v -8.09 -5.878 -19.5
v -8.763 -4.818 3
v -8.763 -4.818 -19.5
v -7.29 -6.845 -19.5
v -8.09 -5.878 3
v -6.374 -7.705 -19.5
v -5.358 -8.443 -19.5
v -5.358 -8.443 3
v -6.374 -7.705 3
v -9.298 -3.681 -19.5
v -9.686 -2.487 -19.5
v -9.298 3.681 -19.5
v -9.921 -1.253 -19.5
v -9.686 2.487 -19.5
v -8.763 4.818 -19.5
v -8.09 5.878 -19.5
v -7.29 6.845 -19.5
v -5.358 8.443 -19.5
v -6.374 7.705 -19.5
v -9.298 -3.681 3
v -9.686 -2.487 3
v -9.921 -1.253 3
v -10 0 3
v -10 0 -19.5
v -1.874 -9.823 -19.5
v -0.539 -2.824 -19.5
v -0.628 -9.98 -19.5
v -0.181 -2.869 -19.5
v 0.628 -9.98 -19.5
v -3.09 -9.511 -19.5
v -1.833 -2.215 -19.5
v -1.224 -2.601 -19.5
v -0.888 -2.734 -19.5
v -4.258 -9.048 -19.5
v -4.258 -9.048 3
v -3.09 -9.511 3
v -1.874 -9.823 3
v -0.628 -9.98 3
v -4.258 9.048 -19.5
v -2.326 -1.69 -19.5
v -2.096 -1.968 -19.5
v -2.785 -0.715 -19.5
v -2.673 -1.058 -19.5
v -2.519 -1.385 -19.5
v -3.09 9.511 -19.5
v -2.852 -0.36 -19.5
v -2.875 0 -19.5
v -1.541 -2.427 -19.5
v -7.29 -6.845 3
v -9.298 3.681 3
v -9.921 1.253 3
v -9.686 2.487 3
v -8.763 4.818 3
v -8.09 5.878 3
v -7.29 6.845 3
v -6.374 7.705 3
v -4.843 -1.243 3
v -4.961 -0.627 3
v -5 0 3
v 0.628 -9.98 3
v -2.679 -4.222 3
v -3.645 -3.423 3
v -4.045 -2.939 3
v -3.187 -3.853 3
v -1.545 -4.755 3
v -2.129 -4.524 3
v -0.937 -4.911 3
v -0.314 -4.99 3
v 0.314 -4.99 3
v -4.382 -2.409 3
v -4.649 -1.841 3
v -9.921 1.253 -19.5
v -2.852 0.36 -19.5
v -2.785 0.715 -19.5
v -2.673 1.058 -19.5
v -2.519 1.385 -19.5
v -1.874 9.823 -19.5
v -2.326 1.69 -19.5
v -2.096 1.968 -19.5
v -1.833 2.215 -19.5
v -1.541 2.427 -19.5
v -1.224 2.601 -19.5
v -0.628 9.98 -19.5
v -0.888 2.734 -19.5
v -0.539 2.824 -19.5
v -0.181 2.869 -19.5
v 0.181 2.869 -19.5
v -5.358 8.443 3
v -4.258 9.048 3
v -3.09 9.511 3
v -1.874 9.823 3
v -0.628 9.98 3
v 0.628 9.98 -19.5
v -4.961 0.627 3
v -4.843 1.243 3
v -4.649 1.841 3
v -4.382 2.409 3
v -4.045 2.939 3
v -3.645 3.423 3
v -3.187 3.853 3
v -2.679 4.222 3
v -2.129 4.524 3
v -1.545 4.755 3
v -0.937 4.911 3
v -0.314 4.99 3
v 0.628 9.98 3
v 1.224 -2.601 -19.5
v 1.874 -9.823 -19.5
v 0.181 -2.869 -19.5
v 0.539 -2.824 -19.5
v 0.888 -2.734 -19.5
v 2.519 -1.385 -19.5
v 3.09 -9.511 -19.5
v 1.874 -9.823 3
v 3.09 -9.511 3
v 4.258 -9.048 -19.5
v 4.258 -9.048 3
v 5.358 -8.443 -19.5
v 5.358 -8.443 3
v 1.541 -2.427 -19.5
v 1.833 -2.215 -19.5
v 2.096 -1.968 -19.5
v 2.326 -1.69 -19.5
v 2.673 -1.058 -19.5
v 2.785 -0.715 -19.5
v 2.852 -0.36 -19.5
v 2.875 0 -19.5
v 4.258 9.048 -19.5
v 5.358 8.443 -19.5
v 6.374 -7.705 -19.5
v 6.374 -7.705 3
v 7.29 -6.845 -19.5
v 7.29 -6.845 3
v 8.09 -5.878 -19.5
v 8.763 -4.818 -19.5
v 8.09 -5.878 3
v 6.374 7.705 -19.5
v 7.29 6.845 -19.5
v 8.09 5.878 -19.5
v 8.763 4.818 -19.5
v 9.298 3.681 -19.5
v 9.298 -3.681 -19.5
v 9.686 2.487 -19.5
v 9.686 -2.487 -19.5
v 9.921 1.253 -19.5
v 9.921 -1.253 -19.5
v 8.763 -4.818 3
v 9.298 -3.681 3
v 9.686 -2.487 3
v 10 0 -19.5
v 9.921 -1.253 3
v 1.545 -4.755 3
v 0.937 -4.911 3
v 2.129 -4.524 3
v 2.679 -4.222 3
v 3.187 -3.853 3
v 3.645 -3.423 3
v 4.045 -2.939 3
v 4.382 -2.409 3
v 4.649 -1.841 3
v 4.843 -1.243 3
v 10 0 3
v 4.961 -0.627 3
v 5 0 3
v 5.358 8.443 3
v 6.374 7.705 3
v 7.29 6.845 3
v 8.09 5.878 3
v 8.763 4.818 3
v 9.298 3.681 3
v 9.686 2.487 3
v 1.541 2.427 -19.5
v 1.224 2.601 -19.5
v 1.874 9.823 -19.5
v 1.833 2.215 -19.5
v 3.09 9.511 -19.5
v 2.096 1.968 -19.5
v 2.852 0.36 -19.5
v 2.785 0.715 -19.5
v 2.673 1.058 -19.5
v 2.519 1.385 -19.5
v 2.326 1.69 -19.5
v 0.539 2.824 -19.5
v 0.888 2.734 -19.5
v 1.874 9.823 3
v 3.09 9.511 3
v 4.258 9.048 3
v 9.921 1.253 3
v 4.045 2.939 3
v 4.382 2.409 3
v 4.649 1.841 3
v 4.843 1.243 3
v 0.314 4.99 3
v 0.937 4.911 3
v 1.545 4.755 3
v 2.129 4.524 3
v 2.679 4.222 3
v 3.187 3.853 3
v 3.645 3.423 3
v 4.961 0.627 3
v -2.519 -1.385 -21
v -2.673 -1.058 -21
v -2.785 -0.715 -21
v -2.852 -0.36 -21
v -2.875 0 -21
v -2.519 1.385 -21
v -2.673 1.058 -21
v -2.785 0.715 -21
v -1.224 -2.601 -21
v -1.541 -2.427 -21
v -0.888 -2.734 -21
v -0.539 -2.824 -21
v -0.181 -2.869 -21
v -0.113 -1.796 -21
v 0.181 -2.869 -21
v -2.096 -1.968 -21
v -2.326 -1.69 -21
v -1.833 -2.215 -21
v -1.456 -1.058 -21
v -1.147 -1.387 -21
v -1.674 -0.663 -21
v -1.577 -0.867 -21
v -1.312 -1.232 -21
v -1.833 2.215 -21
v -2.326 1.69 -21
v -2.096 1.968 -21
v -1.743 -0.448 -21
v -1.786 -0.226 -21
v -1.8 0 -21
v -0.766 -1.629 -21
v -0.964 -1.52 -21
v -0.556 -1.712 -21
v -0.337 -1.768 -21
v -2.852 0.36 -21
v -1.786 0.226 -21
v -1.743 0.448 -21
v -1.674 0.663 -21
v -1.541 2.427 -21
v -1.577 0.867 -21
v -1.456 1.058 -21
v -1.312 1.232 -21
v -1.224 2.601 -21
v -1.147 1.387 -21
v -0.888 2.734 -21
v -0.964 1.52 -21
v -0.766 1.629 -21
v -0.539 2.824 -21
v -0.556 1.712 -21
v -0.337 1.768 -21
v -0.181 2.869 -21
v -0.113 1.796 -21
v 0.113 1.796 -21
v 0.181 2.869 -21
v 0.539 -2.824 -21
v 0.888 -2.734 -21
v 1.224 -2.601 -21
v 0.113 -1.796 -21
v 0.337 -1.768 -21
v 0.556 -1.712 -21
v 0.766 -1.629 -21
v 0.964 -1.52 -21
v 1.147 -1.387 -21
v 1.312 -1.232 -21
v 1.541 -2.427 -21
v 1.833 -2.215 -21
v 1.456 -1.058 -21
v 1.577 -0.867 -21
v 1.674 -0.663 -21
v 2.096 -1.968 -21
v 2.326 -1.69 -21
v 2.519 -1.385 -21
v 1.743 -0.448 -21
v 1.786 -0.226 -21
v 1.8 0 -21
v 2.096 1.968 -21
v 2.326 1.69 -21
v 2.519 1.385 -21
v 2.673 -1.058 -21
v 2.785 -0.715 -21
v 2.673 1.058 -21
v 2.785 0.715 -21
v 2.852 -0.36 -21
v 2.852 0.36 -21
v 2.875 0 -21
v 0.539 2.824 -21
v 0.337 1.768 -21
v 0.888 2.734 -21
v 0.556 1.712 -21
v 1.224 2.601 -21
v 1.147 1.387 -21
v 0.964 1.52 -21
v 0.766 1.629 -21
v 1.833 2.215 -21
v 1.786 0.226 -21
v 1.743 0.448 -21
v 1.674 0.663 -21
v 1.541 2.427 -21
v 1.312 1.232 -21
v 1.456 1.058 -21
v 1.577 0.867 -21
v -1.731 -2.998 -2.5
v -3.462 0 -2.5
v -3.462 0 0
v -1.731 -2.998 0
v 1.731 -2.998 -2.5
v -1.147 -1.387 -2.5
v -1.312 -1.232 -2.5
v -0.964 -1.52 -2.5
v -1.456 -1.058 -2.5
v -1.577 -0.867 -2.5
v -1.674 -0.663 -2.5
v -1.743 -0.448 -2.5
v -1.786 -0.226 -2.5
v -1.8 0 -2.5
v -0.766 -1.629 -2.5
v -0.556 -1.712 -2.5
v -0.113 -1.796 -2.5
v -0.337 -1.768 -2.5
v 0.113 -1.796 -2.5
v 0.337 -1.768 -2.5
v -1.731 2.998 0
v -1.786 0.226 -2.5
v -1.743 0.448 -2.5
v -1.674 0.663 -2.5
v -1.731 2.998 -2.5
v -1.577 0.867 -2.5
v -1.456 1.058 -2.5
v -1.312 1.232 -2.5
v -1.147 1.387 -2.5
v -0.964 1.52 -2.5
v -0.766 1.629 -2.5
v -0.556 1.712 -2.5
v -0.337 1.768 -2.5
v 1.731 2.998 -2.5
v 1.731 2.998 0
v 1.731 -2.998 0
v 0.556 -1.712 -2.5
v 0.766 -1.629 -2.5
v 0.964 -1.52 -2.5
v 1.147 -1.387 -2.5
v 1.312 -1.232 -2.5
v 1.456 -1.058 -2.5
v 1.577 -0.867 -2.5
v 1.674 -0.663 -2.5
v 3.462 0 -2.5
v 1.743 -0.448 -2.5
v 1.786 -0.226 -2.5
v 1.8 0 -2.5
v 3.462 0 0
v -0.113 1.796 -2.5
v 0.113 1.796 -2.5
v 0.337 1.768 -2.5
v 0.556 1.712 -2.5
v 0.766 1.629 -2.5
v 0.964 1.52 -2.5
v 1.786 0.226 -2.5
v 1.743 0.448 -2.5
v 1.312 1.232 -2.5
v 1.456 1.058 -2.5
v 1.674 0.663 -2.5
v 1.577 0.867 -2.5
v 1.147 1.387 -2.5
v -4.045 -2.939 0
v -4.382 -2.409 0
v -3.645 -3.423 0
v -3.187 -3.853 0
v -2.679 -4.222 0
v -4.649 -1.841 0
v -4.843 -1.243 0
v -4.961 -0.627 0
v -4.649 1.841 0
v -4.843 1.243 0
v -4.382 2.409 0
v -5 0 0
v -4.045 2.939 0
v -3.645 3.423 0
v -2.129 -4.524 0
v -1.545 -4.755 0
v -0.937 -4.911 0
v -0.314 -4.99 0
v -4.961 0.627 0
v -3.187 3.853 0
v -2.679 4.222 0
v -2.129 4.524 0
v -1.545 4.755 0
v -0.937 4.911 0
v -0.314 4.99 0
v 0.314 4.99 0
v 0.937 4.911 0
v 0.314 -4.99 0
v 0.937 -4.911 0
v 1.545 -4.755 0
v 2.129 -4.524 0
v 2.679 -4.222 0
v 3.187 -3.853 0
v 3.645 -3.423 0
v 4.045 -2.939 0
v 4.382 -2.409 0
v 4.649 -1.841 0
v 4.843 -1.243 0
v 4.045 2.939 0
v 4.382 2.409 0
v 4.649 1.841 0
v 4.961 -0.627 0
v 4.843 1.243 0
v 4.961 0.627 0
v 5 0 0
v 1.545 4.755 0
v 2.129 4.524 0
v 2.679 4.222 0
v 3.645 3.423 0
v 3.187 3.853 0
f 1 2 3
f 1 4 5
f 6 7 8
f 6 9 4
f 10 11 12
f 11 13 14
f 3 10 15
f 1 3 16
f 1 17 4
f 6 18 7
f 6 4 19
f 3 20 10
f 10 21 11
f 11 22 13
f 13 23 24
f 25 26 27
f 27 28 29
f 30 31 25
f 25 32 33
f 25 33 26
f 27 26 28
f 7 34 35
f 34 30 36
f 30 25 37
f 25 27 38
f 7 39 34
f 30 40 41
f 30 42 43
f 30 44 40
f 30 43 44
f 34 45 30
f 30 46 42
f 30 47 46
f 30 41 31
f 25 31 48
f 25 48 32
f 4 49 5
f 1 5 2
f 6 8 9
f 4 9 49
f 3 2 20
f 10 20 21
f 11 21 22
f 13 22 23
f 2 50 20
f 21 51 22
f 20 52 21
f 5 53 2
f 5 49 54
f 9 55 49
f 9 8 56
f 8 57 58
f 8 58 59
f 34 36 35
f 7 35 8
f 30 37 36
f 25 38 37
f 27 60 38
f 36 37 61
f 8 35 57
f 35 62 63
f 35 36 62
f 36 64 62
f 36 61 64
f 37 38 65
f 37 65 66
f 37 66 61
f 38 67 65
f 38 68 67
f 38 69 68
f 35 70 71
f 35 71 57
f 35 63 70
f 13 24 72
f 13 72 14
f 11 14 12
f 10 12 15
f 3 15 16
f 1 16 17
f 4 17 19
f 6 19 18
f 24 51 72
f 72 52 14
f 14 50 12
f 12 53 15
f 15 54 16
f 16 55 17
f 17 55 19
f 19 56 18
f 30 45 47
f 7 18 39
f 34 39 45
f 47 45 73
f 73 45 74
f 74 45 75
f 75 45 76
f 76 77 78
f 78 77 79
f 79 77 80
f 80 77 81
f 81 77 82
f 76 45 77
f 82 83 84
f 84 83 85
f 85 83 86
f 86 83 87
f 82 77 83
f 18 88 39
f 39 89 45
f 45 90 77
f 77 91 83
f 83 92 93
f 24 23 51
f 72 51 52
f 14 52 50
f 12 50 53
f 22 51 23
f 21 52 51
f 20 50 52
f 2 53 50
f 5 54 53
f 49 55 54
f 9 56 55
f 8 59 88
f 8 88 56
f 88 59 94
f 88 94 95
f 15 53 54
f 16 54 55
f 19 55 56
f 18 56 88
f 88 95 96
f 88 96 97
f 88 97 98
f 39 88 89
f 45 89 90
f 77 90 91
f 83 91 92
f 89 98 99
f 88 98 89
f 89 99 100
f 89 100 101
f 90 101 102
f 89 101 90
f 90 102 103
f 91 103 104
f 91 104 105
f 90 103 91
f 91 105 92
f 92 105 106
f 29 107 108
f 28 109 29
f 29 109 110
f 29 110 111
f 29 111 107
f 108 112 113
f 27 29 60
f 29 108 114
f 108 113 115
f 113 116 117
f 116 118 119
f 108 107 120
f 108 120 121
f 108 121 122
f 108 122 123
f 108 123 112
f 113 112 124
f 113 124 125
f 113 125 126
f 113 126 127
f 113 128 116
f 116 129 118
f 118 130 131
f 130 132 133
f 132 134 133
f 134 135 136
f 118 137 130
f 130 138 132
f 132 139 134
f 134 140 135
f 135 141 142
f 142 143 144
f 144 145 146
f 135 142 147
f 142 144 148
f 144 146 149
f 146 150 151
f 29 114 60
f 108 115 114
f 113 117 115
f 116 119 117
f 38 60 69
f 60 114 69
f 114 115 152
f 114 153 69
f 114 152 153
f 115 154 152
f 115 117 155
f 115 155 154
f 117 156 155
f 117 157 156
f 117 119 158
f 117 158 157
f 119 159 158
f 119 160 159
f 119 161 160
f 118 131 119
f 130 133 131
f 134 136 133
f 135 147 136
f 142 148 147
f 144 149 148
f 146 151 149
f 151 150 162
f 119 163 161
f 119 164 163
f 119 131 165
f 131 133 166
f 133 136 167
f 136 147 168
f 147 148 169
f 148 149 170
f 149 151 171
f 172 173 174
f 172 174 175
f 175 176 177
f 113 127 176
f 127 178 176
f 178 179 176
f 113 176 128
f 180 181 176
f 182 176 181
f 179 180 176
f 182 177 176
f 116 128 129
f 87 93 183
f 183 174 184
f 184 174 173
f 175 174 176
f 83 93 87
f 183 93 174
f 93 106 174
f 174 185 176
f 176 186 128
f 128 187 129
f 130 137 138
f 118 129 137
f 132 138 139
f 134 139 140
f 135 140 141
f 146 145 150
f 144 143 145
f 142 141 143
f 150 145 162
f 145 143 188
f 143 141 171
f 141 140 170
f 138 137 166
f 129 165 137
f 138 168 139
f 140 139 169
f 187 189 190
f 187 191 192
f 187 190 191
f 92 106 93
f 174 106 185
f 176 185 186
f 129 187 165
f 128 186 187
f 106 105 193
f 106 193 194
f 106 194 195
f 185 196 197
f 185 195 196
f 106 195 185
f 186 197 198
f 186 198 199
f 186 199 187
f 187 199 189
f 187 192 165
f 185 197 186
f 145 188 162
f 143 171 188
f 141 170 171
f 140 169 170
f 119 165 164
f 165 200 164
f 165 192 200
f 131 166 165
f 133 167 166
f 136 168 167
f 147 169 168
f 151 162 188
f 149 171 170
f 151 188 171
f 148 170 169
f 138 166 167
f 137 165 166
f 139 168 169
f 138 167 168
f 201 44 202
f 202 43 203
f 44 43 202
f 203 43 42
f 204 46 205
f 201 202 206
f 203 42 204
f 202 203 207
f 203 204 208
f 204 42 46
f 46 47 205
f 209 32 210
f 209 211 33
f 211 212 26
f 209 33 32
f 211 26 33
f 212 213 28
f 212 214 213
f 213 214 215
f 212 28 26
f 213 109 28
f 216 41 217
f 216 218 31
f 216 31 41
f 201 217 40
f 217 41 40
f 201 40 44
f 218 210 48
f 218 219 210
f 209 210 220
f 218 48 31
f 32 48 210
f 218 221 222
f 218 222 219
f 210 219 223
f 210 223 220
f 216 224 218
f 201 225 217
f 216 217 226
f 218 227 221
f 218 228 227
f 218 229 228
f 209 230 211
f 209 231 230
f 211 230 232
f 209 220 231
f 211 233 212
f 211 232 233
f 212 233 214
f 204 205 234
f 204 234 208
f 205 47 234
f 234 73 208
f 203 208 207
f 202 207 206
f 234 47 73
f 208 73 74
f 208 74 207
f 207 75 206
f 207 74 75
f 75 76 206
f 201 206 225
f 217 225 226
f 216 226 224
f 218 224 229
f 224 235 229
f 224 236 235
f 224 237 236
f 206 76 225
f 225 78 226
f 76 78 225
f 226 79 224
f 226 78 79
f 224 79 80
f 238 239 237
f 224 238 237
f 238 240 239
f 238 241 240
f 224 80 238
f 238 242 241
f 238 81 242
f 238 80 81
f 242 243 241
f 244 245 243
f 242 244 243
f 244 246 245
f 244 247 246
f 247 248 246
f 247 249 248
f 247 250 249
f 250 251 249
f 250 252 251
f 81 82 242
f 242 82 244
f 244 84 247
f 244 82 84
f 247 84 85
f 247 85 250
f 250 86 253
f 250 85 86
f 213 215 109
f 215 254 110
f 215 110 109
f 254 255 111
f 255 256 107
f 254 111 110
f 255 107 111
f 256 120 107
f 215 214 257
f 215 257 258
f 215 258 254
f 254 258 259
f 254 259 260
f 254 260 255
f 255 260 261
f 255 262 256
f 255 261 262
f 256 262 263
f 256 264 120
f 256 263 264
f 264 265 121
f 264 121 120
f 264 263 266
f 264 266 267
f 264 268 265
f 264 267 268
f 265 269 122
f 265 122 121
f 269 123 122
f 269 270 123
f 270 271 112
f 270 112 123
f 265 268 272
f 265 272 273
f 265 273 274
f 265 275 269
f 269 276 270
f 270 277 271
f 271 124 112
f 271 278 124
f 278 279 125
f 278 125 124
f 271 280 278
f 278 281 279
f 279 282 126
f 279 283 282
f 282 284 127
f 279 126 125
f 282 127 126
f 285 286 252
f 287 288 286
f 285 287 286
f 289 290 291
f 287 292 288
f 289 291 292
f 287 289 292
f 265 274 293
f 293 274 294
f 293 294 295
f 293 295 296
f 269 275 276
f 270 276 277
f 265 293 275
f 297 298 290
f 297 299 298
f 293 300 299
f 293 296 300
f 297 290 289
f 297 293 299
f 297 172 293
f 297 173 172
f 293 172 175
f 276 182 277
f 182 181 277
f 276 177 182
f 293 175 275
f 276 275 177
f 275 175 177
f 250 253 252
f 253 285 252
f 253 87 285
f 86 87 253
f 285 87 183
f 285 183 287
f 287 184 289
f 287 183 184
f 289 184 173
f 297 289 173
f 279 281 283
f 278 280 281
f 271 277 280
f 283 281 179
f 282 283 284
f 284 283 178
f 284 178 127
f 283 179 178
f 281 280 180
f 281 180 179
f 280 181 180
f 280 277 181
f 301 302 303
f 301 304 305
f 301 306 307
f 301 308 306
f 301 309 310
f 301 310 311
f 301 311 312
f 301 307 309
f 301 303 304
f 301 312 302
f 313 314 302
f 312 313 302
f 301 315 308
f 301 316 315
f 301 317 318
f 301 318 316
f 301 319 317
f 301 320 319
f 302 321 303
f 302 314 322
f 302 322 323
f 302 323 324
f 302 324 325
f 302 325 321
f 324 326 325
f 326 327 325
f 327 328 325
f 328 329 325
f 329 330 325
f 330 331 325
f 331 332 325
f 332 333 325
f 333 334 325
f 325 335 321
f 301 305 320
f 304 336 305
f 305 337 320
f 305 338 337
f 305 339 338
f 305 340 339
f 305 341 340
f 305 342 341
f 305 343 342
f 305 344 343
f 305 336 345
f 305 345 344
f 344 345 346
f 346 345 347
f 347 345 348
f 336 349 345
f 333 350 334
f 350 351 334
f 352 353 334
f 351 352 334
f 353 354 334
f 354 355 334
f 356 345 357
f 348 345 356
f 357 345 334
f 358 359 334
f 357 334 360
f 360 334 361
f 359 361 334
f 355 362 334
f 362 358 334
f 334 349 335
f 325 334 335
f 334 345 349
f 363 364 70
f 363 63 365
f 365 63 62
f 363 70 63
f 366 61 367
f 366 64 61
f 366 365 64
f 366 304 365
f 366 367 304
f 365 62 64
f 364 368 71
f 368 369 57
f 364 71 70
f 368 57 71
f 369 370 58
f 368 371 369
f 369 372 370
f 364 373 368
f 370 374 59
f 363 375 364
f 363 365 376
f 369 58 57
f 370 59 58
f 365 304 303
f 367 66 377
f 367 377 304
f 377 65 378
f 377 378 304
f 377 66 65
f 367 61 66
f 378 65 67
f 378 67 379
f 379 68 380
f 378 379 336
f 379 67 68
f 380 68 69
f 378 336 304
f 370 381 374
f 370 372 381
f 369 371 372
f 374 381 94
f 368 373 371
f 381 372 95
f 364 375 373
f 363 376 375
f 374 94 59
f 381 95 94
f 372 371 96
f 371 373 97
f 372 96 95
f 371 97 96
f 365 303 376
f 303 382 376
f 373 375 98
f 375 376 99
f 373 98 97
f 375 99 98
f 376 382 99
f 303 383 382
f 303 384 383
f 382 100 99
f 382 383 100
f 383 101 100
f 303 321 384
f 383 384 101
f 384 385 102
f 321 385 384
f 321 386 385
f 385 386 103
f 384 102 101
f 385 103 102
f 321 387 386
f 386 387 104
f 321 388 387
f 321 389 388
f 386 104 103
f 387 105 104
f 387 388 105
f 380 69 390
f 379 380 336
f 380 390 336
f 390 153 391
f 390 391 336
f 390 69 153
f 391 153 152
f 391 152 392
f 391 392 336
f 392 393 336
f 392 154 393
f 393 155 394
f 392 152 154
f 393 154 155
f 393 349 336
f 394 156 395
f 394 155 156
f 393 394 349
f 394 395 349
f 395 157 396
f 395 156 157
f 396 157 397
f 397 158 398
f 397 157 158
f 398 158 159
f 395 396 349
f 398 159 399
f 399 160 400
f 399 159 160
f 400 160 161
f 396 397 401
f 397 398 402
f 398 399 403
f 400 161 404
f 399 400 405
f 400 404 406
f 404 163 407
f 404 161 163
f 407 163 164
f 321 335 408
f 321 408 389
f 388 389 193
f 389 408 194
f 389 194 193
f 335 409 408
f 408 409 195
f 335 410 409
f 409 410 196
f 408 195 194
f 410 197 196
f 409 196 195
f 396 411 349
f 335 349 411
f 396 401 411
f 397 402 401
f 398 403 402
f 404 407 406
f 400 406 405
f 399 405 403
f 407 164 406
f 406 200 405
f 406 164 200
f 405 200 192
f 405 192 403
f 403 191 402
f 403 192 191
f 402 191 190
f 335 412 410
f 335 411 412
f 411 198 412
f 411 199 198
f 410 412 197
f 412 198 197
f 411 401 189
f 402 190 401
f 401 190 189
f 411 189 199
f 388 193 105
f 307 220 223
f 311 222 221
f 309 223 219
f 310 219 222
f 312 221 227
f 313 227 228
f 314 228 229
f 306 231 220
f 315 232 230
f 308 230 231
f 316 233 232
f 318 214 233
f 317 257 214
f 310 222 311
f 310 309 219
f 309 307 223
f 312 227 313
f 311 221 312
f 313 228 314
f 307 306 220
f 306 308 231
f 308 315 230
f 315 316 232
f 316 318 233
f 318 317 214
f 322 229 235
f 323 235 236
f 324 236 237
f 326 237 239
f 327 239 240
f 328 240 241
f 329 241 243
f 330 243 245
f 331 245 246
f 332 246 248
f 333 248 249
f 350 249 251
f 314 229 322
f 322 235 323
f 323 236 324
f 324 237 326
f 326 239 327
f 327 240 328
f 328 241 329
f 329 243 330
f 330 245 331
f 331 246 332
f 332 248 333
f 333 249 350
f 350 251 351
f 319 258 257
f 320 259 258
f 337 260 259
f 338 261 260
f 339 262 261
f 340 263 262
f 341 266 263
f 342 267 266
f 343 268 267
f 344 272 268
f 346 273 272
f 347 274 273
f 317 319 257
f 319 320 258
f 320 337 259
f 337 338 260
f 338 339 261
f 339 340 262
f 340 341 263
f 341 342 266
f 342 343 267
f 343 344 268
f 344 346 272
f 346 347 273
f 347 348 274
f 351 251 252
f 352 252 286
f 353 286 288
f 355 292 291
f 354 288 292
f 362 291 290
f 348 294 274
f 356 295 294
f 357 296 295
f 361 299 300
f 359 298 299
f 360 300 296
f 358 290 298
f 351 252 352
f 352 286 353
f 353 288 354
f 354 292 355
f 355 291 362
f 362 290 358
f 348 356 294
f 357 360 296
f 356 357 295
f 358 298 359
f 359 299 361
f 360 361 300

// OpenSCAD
$fn = 50;

difference() {
	union() {
		translate(v = [0, 0, -19.5]) {
			cylinder(h = 22.5, r = 10.0);
		}
		#translate(v = [0, 0, -21.0]) {
			cylinder(h = 21, r = 2.875);
		}
	}
	union() {
		translate(v = [0, 0, 0]) {
			rotate(a = [0, 0, 0]) {
				difference() {
					union() {
						translate(v = [0, 0, -2.5]) {
							linear_extrude(height = 2.5) {
								polygon(points = [[3.4619999999999997, 0.0], [1.7310000000000003, 2.9981799479017264], [-1.7309999999999992, 2.9981799479017264], [-3.4619999999999997, 4.2397272186481365e-16], [-1.7310000000000014, -2.998179947901726], [1.7309999999999977, -2.9981799479017277]]);
							}
						}
					}
					union();
				}
			}
		}
		#cylinder(h = 3, r = 5.0);
		#translate(v = [0, 0, -100.0]) {
			cylinder(h = 200, r = 1.8);
		}
	}
}
